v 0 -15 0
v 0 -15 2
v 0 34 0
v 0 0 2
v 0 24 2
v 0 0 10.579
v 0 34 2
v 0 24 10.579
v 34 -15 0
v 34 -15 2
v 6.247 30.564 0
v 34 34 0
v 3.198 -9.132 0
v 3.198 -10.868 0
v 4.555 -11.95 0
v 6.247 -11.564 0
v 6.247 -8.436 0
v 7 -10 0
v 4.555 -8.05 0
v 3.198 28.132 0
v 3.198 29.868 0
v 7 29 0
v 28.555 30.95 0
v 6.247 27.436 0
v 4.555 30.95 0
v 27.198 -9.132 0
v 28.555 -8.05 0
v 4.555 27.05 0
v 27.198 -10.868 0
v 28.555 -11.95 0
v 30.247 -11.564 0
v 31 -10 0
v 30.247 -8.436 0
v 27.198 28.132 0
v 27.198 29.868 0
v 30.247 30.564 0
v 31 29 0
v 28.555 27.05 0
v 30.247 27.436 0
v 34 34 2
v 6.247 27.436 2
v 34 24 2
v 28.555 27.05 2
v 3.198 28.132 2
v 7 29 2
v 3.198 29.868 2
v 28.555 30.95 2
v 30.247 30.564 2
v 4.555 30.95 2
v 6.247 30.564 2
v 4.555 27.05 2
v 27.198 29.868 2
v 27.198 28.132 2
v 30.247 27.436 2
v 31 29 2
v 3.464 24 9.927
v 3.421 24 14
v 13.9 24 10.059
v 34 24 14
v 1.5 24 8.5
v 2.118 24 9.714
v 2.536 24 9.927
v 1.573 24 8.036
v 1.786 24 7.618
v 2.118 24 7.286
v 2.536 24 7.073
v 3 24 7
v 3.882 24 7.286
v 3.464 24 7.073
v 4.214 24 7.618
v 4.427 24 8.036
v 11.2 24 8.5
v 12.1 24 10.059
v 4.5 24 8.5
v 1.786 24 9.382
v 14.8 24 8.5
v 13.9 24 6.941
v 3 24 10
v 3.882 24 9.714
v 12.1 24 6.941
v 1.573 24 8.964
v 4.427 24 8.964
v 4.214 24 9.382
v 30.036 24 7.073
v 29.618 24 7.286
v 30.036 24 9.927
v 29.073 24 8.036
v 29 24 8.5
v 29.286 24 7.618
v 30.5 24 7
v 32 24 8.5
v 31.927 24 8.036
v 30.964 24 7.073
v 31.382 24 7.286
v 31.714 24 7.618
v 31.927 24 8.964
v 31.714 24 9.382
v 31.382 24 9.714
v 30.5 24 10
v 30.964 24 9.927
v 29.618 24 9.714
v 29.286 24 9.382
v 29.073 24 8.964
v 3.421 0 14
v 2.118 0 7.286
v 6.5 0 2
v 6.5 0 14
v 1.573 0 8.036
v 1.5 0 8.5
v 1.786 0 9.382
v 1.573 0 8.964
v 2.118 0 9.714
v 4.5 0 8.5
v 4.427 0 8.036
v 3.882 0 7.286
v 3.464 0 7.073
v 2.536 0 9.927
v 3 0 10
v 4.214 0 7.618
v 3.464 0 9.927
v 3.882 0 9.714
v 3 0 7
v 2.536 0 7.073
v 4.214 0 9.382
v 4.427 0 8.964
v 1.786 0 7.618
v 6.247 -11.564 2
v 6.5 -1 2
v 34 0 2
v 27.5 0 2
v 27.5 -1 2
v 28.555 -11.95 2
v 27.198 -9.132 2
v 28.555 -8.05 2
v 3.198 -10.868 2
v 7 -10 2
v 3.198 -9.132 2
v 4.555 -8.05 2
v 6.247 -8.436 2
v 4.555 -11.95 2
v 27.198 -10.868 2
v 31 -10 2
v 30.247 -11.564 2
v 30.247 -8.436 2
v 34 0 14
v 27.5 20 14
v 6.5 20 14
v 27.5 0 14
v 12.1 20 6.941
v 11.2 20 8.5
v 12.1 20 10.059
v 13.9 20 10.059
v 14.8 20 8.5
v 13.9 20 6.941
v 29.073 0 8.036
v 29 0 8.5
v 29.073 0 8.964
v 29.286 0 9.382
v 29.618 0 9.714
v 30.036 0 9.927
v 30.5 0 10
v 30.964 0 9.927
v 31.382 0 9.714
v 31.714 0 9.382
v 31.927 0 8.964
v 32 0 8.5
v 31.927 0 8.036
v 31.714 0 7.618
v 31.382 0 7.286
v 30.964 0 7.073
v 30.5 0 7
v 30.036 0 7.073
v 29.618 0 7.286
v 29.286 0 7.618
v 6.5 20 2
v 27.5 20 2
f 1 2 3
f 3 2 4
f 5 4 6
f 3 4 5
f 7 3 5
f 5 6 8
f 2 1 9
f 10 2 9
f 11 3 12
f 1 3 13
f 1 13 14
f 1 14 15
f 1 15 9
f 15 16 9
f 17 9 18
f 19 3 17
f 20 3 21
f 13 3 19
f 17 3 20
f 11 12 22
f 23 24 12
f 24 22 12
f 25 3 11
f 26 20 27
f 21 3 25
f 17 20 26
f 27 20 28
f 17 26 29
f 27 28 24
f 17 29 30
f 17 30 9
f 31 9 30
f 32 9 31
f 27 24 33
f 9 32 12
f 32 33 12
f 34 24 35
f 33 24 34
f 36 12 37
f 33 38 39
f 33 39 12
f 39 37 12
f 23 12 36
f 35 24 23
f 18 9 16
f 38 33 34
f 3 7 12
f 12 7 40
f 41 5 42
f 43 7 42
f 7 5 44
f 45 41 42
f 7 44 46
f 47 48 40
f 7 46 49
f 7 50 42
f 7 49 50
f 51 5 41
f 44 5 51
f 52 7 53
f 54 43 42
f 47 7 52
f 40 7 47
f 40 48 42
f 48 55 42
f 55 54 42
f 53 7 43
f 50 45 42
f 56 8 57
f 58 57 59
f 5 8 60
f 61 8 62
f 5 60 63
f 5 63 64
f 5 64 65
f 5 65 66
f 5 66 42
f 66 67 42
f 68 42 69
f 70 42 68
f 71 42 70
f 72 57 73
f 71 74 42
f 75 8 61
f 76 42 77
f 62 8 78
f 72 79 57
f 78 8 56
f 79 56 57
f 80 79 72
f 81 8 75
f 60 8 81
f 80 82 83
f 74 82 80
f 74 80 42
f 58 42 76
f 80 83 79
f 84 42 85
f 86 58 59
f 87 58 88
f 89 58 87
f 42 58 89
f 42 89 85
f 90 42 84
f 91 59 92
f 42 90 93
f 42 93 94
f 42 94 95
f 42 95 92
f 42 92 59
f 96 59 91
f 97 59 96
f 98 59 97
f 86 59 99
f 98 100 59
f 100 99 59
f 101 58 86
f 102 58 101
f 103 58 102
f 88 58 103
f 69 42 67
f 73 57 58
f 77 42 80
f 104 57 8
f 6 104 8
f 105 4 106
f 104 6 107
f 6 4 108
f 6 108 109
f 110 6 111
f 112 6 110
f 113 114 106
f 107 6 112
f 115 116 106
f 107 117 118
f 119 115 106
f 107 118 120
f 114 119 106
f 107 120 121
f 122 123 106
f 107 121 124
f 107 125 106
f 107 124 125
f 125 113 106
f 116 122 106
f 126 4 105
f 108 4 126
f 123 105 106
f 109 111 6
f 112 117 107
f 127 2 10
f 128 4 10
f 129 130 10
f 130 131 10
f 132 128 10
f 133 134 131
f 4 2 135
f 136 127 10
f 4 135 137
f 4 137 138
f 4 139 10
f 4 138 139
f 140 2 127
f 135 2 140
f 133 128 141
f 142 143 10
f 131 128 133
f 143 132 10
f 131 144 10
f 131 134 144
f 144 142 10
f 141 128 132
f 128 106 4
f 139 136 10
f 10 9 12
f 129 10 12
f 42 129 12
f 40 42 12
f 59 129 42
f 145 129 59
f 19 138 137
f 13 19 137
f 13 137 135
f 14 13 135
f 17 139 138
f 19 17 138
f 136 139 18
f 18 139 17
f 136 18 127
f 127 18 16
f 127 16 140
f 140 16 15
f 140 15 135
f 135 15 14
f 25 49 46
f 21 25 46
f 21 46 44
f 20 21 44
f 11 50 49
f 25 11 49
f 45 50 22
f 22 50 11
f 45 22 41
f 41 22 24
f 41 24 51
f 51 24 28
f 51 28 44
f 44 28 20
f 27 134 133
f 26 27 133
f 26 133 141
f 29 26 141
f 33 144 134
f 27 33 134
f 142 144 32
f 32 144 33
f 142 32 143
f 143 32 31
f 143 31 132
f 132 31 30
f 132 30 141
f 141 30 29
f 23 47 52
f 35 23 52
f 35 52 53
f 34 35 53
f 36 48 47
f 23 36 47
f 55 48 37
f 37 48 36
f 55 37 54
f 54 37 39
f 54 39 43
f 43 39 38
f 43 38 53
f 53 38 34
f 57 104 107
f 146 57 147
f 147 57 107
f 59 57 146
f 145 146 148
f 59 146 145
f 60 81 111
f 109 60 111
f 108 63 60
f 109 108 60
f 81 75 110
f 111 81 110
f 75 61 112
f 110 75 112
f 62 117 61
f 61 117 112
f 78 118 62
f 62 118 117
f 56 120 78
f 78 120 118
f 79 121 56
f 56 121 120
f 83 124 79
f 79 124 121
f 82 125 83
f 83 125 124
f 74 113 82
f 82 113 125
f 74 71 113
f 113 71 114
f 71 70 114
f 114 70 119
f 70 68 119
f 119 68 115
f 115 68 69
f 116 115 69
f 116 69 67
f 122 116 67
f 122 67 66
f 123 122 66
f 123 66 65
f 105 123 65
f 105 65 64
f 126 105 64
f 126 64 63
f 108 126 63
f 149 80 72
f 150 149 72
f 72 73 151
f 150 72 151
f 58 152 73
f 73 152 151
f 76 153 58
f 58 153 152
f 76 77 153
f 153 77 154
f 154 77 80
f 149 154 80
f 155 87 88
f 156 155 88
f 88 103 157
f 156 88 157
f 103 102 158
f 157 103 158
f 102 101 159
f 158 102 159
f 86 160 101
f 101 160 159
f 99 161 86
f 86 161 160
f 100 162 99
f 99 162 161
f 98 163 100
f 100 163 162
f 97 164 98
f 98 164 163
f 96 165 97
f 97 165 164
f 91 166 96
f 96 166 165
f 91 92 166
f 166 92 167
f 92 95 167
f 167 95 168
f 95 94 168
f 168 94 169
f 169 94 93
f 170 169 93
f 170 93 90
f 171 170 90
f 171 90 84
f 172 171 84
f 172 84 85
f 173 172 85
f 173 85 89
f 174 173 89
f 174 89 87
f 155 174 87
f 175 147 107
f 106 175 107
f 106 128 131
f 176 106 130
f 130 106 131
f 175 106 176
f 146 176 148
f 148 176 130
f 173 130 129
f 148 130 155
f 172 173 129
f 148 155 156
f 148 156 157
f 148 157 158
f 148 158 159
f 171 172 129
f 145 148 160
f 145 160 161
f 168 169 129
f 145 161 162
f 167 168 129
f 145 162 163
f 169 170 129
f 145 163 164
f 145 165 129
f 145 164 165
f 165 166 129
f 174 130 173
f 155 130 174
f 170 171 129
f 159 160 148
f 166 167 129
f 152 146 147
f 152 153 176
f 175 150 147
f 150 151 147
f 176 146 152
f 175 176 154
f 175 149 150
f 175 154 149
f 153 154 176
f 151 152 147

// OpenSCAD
module miniservo(z){
	//cube([24,14,z]);
	translate([15,7,0])rotate([0,0,0])cylinder(r=8,h=z);
	translate([-1.75,7,0])union(){
		cylinder(r=1.5, h=z,$fn=20);
		translate([27.5,0,0])cylinder(r=1.5, h=z,$fn=20);
		
	}
}

difference(){
	union(){
		cube([34,24,14]);
		translate([0,-15,0])cube([34,15+24+10,2]);
	}

	translate([3,-1,17/2])rotate([-90,0,0]){
		cylinder(r=1.5, h=30,$fn=20);
		translate([27.5,0,0])cylinder(r=1.5, h=30,$fn=20);
	}
	translate([13/2,-1,2])cube([21,21,13]);
	translate([13,-1,13/2+2])rotate([-90,0,0])cylinder(r=1.8,h=60);
	translate([5,-10,-5])cylinder(r=2,h=60);
	translate([29,-10,-5])cylinder(r=2,h=60);
	translate([5,29,-5])cylinder(r=2,h=60);
	translate([29,29,-5])cylinder(r=2,h=60);
	translate([-110,-50,42])rotate([0,45,0])cube(100);



}
